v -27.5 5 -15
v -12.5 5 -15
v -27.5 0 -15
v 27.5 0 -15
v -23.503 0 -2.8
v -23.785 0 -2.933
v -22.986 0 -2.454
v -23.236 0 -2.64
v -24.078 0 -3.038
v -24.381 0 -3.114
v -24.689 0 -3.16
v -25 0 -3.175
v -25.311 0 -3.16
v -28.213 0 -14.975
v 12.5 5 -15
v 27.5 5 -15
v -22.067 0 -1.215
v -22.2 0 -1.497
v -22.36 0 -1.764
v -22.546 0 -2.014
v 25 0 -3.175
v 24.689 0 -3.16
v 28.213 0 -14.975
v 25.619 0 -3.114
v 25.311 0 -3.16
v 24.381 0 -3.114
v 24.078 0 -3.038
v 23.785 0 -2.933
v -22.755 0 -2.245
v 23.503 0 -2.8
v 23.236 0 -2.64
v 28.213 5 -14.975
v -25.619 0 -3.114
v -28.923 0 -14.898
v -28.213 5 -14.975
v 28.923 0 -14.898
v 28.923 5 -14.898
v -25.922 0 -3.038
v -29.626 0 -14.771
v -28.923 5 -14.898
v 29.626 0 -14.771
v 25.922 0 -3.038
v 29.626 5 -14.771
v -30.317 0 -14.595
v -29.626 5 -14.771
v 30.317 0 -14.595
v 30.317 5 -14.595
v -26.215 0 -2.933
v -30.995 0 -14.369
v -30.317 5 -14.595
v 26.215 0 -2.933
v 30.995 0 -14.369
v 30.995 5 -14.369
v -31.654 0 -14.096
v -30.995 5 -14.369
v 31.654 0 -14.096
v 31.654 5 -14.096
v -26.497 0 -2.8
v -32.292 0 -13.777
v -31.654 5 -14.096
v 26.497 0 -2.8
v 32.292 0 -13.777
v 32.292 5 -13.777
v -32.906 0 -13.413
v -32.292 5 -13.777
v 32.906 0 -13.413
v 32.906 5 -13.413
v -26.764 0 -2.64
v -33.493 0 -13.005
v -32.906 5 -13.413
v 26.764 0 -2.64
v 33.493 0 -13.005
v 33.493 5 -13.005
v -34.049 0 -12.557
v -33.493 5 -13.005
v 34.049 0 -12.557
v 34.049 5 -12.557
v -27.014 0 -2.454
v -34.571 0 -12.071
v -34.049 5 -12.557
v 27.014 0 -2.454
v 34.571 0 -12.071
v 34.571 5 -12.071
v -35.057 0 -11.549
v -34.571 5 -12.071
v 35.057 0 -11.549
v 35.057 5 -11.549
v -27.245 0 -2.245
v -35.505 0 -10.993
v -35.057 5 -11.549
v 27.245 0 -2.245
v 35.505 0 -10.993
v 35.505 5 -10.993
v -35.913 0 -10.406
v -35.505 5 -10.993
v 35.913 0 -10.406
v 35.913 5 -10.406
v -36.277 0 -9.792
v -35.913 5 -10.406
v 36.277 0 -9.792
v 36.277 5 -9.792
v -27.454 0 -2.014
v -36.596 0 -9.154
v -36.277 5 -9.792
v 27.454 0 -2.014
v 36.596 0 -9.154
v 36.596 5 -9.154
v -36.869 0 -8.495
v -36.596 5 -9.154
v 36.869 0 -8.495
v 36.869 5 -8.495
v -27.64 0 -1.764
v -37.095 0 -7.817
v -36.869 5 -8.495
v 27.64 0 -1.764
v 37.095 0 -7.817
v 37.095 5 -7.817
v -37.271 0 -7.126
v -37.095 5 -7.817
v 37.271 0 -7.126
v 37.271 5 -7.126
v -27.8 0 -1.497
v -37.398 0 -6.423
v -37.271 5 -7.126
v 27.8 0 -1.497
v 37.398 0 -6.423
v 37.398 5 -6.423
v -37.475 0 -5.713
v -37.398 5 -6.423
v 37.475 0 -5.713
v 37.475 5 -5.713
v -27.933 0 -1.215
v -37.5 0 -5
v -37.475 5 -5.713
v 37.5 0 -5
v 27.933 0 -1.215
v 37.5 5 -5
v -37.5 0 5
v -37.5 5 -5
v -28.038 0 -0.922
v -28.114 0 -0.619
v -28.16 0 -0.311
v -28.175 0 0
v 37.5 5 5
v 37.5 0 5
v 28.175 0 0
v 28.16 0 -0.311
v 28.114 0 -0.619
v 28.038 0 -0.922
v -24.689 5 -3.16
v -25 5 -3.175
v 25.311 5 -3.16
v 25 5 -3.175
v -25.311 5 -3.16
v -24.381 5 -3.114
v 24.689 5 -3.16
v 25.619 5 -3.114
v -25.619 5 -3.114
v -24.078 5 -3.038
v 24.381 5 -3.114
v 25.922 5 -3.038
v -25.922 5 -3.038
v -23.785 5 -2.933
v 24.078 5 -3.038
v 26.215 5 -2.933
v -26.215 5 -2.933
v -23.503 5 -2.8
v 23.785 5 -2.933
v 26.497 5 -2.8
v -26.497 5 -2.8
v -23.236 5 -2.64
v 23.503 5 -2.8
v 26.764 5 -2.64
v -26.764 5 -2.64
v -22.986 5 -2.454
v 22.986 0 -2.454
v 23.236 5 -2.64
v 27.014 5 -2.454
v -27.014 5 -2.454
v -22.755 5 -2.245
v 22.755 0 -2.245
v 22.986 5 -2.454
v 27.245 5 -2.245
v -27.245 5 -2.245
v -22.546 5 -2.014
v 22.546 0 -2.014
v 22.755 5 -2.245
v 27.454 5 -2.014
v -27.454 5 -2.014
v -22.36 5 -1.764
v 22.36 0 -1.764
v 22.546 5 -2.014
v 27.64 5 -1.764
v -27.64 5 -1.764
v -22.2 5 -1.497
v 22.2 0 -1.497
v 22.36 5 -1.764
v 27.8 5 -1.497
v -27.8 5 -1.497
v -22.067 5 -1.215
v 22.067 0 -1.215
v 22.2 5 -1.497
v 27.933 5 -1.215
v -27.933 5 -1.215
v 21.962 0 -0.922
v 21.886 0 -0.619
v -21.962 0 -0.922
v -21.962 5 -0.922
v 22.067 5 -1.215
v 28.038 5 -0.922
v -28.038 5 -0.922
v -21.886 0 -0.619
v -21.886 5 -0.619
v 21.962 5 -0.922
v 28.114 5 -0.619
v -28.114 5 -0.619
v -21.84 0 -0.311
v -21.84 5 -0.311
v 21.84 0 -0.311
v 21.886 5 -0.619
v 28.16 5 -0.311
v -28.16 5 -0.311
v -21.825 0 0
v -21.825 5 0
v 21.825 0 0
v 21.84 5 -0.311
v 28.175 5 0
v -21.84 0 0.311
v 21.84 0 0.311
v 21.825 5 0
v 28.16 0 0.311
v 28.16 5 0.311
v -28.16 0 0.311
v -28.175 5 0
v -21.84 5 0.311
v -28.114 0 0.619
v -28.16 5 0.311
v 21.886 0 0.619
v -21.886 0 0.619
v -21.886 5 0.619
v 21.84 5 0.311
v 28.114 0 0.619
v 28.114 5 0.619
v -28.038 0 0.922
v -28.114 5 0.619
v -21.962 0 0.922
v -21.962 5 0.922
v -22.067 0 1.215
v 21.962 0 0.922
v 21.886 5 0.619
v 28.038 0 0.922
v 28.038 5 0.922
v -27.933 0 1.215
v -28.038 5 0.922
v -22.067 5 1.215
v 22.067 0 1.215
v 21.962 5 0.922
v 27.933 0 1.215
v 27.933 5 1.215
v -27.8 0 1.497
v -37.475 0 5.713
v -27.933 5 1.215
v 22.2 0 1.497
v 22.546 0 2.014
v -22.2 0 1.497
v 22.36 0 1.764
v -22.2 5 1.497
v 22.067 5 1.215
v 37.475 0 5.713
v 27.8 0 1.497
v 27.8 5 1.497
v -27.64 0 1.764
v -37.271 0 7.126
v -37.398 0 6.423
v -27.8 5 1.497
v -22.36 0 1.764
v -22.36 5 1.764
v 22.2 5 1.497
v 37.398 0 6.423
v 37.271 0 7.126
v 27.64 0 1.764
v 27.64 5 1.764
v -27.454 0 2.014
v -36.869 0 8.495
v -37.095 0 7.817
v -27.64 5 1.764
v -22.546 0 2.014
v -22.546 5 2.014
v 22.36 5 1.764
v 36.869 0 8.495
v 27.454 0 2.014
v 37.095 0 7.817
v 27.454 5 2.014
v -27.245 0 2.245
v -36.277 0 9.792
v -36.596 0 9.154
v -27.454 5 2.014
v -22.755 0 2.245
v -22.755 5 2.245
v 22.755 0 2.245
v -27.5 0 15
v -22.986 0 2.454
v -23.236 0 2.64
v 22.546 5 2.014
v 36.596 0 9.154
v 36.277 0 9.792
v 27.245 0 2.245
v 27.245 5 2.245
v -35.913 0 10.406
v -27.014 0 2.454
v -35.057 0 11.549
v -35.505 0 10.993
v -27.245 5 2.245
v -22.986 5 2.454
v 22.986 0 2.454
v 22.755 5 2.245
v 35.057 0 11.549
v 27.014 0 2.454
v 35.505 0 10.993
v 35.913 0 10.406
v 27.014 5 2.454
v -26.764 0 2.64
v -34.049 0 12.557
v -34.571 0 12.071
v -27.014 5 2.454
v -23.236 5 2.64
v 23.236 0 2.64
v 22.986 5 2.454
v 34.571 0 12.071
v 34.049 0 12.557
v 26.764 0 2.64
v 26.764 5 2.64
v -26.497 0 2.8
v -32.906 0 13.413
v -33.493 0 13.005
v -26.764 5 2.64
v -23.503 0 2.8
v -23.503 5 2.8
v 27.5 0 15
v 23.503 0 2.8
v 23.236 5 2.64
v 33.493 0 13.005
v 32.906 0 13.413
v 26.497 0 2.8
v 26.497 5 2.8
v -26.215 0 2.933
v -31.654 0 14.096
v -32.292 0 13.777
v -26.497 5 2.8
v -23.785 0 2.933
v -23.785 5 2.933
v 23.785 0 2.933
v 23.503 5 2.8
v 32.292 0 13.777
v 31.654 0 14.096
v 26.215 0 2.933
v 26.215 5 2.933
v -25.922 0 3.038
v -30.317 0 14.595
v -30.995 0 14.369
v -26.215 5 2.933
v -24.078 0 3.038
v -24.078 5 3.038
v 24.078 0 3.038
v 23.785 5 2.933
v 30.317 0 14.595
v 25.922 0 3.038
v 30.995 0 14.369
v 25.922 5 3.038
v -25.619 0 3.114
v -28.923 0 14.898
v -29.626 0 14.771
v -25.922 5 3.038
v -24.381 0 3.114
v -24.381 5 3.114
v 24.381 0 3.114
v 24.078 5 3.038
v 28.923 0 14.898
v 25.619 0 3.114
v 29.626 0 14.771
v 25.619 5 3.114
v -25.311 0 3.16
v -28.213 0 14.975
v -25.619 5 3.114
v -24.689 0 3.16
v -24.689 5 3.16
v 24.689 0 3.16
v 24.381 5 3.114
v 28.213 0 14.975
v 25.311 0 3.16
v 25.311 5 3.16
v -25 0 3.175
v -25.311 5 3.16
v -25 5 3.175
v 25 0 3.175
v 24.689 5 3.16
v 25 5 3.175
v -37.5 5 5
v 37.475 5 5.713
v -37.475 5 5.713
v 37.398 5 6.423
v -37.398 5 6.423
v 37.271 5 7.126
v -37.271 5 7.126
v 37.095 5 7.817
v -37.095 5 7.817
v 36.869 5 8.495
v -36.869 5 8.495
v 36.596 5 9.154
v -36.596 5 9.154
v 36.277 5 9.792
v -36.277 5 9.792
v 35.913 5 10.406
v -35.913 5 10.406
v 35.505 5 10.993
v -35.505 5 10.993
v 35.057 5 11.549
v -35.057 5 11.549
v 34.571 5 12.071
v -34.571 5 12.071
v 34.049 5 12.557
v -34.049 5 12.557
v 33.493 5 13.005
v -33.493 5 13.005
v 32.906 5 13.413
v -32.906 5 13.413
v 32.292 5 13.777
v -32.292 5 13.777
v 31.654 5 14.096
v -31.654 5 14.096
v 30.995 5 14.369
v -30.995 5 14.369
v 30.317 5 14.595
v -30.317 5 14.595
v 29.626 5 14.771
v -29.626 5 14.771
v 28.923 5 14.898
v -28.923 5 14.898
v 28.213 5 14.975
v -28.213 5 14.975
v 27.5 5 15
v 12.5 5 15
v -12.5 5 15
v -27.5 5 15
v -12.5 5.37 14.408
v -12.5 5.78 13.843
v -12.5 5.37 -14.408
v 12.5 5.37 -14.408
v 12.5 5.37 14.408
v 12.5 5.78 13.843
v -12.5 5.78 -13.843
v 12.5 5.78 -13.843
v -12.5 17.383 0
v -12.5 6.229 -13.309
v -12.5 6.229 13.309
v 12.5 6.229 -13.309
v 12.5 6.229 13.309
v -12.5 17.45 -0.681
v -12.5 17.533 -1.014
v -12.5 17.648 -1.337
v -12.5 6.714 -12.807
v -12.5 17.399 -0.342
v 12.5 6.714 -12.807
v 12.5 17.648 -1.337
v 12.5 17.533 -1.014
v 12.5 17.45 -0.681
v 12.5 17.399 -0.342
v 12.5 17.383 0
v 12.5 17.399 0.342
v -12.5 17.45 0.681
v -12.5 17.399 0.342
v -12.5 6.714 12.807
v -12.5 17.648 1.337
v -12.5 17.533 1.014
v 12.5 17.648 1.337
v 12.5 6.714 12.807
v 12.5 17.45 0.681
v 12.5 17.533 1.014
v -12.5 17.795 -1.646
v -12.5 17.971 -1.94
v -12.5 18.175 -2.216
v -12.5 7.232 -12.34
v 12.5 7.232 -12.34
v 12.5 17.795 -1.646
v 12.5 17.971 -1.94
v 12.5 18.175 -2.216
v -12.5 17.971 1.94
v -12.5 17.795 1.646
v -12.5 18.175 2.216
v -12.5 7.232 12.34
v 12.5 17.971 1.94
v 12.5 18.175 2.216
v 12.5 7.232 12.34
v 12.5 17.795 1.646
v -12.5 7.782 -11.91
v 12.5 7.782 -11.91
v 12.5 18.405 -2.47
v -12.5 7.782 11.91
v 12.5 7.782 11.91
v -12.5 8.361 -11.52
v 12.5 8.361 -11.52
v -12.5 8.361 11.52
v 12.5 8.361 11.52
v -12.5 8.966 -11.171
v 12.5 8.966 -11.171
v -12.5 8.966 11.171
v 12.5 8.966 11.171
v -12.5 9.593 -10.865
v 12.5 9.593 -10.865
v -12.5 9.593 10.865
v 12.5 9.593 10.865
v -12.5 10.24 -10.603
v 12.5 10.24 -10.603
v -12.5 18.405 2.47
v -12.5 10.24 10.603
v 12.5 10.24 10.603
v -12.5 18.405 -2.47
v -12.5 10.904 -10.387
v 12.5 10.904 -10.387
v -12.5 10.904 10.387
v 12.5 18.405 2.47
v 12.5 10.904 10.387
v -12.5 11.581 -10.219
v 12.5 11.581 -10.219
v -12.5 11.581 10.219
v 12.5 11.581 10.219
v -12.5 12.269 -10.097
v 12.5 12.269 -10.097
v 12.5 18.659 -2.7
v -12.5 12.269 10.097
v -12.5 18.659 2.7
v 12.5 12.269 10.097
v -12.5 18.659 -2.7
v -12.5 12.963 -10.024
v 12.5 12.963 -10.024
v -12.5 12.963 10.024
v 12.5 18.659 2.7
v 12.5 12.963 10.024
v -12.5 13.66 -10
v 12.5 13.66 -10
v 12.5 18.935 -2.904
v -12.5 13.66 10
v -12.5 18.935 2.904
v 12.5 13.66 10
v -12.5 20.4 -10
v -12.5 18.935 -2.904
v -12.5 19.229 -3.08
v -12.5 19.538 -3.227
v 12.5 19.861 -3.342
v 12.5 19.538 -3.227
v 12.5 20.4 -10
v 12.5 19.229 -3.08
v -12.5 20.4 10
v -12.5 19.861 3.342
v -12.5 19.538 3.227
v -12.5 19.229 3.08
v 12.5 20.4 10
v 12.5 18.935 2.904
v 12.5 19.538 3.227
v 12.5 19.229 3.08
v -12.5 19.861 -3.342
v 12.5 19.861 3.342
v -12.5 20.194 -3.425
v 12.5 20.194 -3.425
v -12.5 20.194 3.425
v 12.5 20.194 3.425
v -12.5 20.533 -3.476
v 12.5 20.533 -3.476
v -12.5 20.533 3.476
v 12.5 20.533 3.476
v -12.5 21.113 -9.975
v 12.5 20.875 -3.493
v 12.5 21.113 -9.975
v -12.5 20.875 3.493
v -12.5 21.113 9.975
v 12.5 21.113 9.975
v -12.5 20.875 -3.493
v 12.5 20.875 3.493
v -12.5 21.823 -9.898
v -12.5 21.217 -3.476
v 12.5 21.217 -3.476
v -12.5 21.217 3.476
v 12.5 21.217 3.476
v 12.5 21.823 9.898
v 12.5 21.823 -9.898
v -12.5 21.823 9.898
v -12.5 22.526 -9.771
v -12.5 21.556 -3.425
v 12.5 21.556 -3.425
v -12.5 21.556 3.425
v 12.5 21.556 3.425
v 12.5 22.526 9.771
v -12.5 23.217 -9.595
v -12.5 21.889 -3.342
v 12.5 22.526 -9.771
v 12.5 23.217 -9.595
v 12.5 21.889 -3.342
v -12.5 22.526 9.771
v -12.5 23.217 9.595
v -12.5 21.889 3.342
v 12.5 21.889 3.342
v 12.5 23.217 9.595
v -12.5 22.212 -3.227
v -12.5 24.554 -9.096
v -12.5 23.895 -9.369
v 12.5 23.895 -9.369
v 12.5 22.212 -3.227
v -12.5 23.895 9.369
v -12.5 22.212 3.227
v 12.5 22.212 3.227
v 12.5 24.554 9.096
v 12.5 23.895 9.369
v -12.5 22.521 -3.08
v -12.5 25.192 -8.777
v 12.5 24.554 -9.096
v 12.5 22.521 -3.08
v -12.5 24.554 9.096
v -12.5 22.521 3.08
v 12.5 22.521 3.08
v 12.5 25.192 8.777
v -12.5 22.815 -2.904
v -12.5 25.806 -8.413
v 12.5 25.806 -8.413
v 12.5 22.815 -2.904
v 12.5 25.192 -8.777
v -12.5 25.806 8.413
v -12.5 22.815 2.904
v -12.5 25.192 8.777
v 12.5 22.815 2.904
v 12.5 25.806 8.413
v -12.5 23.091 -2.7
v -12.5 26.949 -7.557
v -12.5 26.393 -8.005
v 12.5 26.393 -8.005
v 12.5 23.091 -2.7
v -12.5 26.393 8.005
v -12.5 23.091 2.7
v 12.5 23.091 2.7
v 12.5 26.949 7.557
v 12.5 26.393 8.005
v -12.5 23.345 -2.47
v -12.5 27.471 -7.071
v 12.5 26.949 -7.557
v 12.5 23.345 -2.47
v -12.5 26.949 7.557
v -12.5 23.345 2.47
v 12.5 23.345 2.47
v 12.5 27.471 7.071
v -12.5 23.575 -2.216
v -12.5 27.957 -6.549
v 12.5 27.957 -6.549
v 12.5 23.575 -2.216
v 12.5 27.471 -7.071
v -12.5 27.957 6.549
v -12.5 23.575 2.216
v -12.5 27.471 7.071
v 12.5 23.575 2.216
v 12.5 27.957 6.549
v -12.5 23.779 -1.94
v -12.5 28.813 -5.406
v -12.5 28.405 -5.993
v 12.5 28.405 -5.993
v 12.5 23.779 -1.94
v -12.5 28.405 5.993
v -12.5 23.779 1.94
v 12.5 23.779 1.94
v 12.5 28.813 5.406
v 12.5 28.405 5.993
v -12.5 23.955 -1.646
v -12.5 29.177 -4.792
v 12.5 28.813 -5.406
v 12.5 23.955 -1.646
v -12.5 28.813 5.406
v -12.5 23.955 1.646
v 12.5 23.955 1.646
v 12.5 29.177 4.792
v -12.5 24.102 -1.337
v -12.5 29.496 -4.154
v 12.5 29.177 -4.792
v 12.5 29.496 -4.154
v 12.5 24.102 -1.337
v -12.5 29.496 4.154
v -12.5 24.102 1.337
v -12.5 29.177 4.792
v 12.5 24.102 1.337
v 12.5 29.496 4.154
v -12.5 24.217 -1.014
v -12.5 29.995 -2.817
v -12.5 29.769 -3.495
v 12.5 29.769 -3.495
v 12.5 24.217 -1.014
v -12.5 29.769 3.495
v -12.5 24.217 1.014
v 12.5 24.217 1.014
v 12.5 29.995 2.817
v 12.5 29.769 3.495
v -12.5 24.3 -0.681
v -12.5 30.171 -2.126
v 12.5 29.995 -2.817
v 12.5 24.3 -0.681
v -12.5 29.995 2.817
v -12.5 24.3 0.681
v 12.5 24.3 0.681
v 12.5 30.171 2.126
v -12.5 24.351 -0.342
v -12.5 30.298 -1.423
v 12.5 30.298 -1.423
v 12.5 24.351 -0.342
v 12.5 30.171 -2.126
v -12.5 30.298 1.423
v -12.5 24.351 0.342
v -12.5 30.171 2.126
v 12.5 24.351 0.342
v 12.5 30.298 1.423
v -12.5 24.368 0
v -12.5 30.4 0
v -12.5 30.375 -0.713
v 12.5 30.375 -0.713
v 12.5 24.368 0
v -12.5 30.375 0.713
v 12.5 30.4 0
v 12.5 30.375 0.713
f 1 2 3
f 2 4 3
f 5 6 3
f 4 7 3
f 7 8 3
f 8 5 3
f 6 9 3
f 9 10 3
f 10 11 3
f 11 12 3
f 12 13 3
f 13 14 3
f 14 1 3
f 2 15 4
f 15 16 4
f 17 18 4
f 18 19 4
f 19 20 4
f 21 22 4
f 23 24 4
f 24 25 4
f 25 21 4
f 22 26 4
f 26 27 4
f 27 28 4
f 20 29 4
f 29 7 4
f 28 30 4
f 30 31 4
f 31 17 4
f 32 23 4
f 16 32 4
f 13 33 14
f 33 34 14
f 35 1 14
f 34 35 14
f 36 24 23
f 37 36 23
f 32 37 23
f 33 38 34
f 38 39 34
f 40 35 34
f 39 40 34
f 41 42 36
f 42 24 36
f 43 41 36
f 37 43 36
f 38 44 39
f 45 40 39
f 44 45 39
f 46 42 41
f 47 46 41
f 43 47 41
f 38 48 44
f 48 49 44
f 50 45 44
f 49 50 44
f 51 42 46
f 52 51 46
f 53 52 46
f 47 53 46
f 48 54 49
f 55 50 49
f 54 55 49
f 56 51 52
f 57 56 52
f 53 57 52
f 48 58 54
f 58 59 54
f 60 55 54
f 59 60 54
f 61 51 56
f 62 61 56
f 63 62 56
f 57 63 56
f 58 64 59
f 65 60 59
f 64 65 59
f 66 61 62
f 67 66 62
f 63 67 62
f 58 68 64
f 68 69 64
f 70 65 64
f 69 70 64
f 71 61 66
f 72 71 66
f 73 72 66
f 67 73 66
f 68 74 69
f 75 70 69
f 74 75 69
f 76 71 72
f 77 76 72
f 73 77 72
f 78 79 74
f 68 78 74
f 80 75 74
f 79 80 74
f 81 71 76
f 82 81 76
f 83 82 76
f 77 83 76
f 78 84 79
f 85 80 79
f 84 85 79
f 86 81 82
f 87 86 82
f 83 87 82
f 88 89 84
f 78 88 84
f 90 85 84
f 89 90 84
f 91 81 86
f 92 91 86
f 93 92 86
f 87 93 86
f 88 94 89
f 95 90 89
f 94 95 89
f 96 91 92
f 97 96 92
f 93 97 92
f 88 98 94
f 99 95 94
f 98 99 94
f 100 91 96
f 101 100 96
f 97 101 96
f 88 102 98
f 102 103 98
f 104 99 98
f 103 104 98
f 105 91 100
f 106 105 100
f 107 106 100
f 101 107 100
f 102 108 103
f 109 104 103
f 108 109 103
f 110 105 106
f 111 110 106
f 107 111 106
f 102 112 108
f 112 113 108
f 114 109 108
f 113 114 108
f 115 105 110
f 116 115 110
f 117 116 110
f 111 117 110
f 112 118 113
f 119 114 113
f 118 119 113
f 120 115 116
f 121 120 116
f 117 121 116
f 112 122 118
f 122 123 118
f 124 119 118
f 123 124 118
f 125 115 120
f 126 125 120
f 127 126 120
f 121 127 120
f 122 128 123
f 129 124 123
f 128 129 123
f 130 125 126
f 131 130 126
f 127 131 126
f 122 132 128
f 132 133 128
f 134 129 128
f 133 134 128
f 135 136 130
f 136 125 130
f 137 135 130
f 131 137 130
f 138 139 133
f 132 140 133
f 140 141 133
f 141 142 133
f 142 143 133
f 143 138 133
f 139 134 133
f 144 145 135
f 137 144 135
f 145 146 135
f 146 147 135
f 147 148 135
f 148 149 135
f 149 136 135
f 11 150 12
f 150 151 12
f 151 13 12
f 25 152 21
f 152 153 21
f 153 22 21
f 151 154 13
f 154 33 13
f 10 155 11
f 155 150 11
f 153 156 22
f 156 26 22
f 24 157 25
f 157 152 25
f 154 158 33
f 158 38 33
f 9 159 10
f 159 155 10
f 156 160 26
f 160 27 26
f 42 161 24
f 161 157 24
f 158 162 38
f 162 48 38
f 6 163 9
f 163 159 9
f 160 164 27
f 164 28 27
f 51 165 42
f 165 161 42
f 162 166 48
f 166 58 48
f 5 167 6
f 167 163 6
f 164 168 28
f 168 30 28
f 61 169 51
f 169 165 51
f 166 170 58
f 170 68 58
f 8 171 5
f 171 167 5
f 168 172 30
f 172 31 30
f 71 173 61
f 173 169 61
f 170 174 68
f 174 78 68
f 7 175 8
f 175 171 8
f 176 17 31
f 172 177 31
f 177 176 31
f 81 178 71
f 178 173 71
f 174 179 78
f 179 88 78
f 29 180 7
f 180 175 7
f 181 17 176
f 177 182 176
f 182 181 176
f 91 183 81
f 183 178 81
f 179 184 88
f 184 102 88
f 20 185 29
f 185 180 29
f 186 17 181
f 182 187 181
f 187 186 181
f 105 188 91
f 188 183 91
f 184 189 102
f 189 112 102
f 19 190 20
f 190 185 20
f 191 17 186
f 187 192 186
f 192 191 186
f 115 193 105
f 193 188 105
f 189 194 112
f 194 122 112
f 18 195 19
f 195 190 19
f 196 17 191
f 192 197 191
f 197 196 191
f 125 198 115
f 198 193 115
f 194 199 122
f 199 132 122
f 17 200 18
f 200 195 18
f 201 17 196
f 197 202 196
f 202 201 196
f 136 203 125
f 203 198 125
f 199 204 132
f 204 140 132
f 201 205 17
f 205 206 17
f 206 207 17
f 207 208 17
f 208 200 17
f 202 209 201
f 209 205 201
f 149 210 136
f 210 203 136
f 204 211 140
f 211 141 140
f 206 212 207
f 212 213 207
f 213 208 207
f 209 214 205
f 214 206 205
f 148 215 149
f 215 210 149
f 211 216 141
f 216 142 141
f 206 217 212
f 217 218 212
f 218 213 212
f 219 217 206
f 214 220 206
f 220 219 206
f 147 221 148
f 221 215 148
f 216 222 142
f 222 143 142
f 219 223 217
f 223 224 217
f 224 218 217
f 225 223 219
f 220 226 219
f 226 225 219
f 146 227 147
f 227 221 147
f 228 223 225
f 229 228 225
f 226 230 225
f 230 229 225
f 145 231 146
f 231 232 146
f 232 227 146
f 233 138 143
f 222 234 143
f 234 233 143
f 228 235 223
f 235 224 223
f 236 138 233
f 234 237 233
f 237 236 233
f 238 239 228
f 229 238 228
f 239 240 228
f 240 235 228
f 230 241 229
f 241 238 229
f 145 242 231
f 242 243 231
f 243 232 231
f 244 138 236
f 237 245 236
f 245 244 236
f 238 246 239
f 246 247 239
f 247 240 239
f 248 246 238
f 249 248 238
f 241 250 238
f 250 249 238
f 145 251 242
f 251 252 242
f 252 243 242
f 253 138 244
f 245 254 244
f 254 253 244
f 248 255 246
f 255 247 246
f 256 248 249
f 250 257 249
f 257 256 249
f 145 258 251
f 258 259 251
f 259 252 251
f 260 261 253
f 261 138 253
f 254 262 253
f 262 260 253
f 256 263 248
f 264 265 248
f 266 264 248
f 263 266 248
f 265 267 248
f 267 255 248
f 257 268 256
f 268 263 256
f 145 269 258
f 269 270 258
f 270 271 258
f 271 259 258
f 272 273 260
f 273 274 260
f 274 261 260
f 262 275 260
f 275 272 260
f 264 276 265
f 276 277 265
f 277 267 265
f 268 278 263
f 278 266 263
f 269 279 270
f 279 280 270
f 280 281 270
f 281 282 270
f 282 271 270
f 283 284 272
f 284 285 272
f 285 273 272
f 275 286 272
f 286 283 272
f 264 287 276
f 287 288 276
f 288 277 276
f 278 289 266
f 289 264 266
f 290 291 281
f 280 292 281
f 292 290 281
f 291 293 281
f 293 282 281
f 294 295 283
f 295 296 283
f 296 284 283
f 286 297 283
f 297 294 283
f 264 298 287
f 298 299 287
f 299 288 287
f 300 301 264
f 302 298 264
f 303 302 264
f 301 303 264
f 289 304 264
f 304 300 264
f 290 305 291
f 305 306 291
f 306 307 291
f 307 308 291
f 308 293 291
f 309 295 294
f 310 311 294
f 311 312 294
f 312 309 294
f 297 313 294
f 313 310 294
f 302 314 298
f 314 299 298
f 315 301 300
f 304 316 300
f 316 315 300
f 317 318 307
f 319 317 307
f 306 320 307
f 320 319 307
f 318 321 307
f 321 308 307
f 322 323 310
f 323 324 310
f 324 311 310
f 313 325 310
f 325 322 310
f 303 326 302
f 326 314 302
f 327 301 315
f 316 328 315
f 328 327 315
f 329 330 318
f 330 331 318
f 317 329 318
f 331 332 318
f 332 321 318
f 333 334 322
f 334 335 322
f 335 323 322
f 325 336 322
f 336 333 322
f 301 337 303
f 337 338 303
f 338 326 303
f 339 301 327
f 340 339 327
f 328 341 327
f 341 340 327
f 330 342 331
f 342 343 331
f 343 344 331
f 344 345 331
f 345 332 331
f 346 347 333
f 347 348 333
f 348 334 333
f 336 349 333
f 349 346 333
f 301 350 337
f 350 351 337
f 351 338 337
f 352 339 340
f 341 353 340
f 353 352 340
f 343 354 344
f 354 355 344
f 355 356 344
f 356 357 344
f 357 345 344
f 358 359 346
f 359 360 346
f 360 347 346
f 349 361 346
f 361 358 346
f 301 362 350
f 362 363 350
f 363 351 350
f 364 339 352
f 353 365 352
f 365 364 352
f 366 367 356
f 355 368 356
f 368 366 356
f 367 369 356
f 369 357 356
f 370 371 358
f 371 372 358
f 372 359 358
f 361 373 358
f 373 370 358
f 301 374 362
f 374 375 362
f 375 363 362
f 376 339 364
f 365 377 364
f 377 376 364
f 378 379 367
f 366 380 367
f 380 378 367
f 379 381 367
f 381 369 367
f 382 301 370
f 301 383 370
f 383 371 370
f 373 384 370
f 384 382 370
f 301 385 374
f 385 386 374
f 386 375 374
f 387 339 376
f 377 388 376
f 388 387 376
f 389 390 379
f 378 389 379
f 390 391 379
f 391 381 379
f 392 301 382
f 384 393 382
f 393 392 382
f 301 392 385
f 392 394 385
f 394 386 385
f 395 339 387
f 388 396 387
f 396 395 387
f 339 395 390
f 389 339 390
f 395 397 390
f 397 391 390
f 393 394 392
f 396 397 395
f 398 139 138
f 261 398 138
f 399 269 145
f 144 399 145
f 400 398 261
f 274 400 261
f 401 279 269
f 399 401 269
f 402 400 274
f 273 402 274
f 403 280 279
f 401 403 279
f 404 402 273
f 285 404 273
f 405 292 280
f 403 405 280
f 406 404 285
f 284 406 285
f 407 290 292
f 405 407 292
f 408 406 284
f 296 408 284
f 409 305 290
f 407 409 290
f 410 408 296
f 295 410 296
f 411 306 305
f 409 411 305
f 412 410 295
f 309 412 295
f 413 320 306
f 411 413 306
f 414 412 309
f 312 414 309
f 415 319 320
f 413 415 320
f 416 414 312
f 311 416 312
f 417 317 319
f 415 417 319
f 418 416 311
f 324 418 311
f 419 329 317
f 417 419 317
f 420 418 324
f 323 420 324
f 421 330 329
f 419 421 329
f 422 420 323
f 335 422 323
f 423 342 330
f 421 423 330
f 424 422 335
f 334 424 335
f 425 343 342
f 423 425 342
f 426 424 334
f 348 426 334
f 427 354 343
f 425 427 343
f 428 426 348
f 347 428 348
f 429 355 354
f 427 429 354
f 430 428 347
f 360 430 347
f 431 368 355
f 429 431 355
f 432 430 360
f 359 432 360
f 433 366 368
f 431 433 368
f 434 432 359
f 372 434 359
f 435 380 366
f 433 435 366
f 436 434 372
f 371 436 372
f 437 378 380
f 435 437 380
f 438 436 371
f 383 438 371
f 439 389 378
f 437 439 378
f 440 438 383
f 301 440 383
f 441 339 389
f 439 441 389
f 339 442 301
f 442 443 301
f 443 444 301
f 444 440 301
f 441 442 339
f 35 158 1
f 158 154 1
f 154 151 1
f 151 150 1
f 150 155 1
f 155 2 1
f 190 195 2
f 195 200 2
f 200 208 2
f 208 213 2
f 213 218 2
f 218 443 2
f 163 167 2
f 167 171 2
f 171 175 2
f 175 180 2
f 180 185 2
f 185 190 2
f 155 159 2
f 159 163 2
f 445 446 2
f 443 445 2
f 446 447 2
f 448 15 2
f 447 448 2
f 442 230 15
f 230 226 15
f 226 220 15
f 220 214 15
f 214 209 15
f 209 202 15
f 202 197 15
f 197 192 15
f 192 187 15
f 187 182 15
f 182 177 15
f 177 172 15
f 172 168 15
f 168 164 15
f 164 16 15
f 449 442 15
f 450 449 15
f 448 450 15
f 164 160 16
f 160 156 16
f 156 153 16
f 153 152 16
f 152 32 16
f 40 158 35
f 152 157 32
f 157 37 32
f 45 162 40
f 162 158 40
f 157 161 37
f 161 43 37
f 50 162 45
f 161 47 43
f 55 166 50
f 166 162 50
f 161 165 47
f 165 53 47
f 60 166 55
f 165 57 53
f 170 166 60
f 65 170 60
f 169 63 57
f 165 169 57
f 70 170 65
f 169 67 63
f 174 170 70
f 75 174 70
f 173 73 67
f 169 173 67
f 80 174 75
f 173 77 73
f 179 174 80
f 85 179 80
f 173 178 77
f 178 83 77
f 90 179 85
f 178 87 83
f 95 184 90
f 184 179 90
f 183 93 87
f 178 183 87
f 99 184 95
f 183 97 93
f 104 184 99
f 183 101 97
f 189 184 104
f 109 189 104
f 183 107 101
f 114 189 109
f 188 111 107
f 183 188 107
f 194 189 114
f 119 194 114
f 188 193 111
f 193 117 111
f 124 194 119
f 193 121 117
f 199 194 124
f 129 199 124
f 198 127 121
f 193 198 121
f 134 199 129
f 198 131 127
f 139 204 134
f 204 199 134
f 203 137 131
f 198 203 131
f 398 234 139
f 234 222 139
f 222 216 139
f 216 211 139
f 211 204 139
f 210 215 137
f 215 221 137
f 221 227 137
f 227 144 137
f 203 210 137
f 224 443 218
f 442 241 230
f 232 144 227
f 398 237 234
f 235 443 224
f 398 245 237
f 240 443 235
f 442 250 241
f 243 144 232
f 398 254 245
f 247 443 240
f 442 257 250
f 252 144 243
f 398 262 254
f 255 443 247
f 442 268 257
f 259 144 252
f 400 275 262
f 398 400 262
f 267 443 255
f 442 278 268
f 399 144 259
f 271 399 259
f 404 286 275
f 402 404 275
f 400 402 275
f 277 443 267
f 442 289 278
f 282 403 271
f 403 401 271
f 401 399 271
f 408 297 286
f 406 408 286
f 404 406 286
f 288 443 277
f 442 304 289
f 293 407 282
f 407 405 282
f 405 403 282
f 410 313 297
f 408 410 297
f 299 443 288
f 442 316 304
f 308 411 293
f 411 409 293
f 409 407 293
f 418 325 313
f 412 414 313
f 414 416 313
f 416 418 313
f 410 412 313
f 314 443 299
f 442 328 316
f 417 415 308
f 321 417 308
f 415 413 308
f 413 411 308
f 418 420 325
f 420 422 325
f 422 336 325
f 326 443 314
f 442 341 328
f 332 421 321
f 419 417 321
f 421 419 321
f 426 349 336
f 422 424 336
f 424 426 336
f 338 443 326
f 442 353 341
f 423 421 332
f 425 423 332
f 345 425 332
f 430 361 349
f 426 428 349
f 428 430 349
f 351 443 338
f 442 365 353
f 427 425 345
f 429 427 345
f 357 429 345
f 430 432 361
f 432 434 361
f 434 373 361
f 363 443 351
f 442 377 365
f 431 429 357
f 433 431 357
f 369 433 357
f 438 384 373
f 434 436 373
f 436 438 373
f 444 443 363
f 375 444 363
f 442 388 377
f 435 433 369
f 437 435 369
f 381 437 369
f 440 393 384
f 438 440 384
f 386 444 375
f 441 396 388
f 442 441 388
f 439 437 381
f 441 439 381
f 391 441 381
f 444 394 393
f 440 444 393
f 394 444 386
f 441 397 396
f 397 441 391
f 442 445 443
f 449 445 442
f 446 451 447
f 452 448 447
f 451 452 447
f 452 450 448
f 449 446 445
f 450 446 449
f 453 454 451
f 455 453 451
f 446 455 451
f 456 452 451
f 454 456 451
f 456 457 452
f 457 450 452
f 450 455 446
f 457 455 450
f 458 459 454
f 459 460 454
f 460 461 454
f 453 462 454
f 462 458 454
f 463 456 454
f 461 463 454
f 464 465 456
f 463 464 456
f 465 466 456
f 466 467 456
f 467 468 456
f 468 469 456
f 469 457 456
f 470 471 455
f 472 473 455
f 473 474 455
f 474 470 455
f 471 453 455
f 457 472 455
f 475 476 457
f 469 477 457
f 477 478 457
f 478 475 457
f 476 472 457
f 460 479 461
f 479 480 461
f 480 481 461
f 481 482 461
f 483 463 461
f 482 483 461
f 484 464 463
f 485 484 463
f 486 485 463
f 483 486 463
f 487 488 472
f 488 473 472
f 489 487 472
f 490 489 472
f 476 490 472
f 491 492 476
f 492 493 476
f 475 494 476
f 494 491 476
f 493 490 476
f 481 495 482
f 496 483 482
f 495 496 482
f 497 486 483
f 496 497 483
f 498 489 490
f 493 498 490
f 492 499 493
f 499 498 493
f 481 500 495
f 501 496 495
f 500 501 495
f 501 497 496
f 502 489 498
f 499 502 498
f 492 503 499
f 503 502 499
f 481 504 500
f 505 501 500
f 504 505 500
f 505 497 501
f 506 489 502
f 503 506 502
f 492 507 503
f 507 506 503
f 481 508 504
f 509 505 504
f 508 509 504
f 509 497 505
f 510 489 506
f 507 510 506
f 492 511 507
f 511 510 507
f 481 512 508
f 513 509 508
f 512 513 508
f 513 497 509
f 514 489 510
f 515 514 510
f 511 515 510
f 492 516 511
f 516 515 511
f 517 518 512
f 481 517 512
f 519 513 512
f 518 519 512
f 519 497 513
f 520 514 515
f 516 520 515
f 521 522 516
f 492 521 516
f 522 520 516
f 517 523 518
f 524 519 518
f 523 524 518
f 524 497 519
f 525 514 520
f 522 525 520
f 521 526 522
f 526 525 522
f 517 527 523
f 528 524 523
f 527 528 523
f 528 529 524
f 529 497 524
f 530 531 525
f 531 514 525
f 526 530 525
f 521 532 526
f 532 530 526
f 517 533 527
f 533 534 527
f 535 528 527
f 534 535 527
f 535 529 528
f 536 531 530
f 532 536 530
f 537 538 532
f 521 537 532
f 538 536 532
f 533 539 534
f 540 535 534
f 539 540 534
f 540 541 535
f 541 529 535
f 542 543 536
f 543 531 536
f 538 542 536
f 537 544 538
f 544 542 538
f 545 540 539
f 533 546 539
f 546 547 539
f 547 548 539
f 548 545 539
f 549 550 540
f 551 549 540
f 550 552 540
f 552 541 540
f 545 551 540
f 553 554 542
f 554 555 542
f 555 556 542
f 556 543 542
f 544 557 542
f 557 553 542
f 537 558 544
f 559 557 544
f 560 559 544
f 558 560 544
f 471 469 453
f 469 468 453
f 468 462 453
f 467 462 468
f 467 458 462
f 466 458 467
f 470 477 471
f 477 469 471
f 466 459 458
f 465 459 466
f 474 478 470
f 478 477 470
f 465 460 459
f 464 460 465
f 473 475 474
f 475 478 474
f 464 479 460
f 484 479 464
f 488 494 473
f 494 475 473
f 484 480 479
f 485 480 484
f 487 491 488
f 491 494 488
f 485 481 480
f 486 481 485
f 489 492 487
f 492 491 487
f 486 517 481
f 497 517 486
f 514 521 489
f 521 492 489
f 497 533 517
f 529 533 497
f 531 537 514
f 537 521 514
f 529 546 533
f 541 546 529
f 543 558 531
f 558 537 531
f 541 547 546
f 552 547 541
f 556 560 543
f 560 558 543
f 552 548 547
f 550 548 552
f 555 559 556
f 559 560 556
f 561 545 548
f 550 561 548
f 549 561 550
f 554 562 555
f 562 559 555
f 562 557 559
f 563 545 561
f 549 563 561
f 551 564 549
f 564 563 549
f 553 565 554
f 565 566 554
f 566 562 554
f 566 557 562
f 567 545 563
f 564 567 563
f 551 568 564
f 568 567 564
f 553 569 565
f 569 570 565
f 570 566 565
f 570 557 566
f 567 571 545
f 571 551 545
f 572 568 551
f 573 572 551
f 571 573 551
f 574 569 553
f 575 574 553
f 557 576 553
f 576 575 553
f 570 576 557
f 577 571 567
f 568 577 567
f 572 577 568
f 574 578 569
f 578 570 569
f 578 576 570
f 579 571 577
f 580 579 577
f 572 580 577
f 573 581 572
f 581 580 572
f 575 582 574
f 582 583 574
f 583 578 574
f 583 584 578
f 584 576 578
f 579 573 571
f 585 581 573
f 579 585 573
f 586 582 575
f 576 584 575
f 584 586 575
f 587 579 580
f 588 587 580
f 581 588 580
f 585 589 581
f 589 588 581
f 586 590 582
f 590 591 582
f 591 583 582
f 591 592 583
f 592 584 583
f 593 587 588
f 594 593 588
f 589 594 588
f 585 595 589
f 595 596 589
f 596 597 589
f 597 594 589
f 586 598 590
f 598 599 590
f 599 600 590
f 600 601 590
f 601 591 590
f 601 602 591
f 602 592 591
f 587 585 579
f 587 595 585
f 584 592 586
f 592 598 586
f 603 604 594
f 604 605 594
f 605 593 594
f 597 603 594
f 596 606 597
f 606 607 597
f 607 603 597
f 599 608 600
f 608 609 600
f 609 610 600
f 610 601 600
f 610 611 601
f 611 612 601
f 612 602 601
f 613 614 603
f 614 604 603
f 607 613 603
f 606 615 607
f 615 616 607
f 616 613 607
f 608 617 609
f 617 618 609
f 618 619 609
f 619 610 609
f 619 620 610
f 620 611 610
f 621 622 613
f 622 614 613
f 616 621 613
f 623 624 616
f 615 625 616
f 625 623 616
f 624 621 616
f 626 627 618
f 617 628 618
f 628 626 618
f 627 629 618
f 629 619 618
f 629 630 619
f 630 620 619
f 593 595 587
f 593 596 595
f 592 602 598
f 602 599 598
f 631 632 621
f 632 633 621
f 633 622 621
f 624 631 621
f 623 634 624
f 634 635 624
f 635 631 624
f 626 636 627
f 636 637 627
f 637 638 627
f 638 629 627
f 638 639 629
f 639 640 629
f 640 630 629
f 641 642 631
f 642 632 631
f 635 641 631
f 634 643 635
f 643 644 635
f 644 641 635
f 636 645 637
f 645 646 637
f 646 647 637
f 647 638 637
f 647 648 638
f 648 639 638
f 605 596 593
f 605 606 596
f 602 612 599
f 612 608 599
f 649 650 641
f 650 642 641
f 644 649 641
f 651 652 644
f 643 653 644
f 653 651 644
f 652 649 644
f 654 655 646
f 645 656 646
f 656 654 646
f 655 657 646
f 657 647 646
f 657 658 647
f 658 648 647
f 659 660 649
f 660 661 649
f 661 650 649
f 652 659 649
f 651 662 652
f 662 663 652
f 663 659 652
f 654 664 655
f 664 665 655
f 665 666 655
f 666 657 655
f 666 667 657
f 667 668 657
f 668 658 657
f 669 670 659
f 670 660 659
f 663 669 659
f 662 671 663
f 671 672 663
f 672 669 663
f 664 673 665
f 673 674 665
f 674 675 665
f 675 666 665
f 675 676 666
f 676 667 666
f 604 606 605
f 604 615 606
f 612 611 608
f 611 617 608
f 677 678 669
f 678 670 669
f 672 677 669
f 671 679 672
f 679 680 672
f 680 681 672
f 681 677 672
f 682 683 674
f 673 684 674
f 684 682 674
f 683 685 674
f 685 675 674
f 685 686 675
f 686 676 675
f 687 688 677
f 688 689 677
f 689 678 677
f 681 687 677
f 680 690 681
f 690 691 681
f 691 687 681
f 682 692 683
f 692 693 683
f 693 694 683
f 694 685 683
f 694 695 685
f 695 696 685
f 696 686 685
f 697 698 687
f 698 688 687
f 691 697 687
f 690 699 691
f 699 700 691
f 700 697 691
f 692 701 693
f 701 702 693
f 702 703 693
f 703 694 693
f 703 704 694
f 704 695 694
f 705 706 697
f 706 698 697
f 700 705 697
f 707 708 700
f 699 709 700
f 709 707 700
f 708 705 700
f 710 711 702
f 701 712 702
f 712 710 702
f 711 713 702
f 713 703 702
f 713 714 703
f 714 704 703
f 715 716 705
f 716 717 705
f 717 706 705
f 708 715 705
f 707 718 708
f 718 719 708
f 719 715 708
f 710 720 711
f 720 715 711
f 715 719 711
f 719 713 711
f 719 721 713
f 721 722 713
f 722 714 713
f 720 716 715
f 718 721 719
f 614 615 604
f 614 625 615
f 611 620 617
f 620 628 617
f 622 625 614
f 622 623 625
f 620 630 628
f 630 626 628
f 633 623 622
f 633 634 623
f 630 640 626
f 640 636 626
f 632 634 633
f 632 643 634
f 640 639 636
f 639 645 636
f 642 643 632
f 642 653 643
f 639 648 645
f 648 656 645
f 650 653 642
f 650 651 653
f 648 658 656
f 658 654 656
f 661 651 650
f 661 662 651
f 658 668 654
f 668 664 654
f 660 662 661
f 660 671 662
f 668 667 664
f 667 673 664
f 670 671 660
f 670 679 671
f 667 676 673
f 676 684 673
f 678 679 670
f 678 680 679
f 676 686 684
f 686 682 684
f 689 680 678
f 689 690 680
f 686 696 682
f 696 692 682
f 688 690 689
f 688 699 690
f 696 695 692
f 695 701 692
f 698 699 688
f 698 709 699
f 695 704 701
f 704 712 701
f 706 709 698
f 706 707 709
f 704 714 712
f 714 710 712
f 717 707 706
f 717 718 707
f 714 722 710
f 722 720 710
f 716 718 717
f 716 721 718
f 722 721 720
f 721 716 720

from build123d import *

# Parameters (mm, degrees)
SKETCH1_W                   = 75
SKETCH1_H                   = 30
BOSS_EXTRUDE1_DEPTH         = 5
SKETCH2_W                   = 25
SKETCH2_H                   = 20
BOSS_EXTRUDE3_DEPTH         = 25.4
SKETCH3_R                   = 3.4925
CUT_EXTRUDE1_DEPTH          = 61.408277578
F_1_4_0_25_DIAMETER_HOLE2_D = 6.35
FILLET2_R                   = 10


with BuildPart() as part:
    # Sketch1 → Boss-Extrude1 (new body)
    with BuildSketch(Plane(origin=(0, 0, 0), x_dir=(1, 0, 0), z_dir=(0, 1, 0))):
        Rectangle(SKETCH1_W, SKETCH1_H)
    extrude(amount=BOSS_EXTRUDE1_DEPTH)

    # Sketch2 → Boss-Extrude3 (add)
    with BuildSketch(Plane(origin=(0, 5, 0), x_dir=(1, 0, 0), z_dir=(0, 1, 0))):
        Rectangle(SKETCH2_W, SKETCH2_H)
    extrude(amount=BOSS_EXTRUDE3_DEPTH)

    # Sketch3 → Cut-Extrude1 (cut, through all)
    with BuildSketch(Plane(origin=(12.5, 0, 0), x_dir=(0, 0, -1), z_dir=(1, 0, 0))):
        with Locations((0, 20.875)):
            Circle(SKETCH3_R)
    extrude(amount=-CUT_EXTRUDE1_DEPTH, mode=Mode.SUBTRACT)

    # 1/4 (0.25) Diameter Hole2 (through all)
    with Locations(Plane(origin=(0, 5, 0), x_dir=(1, 0, 0), z_dir=(0, 1, 0))):
        with Locations((-25, 0), (25, 0)):
            Hole(F_1_4_0_25_DIAMETER_HOLE2_D / 2)

    # Fillet2
    # the kernel refuses this fillet: 10 mm, written as the material it adds along each edge
    with BuildSketch(Plane(origin=(-12.5, 5, 10), x_dir=(0, 0, 1), z_dir=(1, 0, 0)), Plane(origin=(12.5, 5, -10), x_dir=(0, 0, -1), z_dir=(-1, 0, 0))) as fillet2_piece_1:
        with BuildLine():
            CenterArc((10, -8.660254038), FILLET2_R, 120, 60)
            Line((0, -8.660254038), (0, 0))
            Line((0, 0), (5, 0))
        make_face()
    extrude(amount=25)
    # the kernel refuses this fillet: 10 mm, written as the material it takes off along each edge
    with BuildSketch(Plane(origin=(-37.5, -25, -15), x_dir=(1, 0, 0), z_dir=(0, 1, 0)), Plane(origin=(37.5, -25, 15), x_dir=(-1, 0, 0), z_dir=(0, 1, 0))) as fillet2_2_piece_1:
        with BuildLine():
            CenterArc((FILLET2_R, -FILLET2_R), FILLET2_R, 90, 90)
            Line((0, -FILLET2_R), (0, 0))
            Line((0, 0), (FILLET2_R, 0))
        make_face()
    extrude(amount=55, mode=Mode.SUBTRACT)
    with BuildSketch(Plane(origin=(-37.5, -25, 15), x_dir=(1, 0, 0), z_dir=(0, 1, 0)), Plane(origin=(37.5, -25, -15), x_dir=(-1, 0, 0), z_dir=(0, 1, 0))) as fillet2_2_piece_2:
        with BuildLine():
            CenterArc((FILLET2_R, FILLET2_R), FILLET2_R, 180, 90)
            Line((0, FILLET2_R), (0, 0))
            Line((0, 0), (FILLET2_R, 0))
        make_face()
    extrude(amount=55, mode=Mode.SUBTRACT)
    with BuildSketch(Plane(origin=(-37.5, 30.4, 10), x_dir=(0, 0, -1), z_dir=(1, 0, 0)), Plane(origin=(37.5, 30.4, -10), x_dir=(0, 0, 1), z_dir=(-1, 0, 0))) as fillet2_2_piece_3:
        with BuildLine():
            CenterArc((FILLET2_R, -FILLET2_R), FILLET2_R, 90, 90)
            Line((0, -FILLET2_R), (0, 0))
            Line((0, 0), (FILLET2_R, 0))
        make_face()
    extrude(amount=75, mode=Mode.SUBTRACT)


solid = part.part
